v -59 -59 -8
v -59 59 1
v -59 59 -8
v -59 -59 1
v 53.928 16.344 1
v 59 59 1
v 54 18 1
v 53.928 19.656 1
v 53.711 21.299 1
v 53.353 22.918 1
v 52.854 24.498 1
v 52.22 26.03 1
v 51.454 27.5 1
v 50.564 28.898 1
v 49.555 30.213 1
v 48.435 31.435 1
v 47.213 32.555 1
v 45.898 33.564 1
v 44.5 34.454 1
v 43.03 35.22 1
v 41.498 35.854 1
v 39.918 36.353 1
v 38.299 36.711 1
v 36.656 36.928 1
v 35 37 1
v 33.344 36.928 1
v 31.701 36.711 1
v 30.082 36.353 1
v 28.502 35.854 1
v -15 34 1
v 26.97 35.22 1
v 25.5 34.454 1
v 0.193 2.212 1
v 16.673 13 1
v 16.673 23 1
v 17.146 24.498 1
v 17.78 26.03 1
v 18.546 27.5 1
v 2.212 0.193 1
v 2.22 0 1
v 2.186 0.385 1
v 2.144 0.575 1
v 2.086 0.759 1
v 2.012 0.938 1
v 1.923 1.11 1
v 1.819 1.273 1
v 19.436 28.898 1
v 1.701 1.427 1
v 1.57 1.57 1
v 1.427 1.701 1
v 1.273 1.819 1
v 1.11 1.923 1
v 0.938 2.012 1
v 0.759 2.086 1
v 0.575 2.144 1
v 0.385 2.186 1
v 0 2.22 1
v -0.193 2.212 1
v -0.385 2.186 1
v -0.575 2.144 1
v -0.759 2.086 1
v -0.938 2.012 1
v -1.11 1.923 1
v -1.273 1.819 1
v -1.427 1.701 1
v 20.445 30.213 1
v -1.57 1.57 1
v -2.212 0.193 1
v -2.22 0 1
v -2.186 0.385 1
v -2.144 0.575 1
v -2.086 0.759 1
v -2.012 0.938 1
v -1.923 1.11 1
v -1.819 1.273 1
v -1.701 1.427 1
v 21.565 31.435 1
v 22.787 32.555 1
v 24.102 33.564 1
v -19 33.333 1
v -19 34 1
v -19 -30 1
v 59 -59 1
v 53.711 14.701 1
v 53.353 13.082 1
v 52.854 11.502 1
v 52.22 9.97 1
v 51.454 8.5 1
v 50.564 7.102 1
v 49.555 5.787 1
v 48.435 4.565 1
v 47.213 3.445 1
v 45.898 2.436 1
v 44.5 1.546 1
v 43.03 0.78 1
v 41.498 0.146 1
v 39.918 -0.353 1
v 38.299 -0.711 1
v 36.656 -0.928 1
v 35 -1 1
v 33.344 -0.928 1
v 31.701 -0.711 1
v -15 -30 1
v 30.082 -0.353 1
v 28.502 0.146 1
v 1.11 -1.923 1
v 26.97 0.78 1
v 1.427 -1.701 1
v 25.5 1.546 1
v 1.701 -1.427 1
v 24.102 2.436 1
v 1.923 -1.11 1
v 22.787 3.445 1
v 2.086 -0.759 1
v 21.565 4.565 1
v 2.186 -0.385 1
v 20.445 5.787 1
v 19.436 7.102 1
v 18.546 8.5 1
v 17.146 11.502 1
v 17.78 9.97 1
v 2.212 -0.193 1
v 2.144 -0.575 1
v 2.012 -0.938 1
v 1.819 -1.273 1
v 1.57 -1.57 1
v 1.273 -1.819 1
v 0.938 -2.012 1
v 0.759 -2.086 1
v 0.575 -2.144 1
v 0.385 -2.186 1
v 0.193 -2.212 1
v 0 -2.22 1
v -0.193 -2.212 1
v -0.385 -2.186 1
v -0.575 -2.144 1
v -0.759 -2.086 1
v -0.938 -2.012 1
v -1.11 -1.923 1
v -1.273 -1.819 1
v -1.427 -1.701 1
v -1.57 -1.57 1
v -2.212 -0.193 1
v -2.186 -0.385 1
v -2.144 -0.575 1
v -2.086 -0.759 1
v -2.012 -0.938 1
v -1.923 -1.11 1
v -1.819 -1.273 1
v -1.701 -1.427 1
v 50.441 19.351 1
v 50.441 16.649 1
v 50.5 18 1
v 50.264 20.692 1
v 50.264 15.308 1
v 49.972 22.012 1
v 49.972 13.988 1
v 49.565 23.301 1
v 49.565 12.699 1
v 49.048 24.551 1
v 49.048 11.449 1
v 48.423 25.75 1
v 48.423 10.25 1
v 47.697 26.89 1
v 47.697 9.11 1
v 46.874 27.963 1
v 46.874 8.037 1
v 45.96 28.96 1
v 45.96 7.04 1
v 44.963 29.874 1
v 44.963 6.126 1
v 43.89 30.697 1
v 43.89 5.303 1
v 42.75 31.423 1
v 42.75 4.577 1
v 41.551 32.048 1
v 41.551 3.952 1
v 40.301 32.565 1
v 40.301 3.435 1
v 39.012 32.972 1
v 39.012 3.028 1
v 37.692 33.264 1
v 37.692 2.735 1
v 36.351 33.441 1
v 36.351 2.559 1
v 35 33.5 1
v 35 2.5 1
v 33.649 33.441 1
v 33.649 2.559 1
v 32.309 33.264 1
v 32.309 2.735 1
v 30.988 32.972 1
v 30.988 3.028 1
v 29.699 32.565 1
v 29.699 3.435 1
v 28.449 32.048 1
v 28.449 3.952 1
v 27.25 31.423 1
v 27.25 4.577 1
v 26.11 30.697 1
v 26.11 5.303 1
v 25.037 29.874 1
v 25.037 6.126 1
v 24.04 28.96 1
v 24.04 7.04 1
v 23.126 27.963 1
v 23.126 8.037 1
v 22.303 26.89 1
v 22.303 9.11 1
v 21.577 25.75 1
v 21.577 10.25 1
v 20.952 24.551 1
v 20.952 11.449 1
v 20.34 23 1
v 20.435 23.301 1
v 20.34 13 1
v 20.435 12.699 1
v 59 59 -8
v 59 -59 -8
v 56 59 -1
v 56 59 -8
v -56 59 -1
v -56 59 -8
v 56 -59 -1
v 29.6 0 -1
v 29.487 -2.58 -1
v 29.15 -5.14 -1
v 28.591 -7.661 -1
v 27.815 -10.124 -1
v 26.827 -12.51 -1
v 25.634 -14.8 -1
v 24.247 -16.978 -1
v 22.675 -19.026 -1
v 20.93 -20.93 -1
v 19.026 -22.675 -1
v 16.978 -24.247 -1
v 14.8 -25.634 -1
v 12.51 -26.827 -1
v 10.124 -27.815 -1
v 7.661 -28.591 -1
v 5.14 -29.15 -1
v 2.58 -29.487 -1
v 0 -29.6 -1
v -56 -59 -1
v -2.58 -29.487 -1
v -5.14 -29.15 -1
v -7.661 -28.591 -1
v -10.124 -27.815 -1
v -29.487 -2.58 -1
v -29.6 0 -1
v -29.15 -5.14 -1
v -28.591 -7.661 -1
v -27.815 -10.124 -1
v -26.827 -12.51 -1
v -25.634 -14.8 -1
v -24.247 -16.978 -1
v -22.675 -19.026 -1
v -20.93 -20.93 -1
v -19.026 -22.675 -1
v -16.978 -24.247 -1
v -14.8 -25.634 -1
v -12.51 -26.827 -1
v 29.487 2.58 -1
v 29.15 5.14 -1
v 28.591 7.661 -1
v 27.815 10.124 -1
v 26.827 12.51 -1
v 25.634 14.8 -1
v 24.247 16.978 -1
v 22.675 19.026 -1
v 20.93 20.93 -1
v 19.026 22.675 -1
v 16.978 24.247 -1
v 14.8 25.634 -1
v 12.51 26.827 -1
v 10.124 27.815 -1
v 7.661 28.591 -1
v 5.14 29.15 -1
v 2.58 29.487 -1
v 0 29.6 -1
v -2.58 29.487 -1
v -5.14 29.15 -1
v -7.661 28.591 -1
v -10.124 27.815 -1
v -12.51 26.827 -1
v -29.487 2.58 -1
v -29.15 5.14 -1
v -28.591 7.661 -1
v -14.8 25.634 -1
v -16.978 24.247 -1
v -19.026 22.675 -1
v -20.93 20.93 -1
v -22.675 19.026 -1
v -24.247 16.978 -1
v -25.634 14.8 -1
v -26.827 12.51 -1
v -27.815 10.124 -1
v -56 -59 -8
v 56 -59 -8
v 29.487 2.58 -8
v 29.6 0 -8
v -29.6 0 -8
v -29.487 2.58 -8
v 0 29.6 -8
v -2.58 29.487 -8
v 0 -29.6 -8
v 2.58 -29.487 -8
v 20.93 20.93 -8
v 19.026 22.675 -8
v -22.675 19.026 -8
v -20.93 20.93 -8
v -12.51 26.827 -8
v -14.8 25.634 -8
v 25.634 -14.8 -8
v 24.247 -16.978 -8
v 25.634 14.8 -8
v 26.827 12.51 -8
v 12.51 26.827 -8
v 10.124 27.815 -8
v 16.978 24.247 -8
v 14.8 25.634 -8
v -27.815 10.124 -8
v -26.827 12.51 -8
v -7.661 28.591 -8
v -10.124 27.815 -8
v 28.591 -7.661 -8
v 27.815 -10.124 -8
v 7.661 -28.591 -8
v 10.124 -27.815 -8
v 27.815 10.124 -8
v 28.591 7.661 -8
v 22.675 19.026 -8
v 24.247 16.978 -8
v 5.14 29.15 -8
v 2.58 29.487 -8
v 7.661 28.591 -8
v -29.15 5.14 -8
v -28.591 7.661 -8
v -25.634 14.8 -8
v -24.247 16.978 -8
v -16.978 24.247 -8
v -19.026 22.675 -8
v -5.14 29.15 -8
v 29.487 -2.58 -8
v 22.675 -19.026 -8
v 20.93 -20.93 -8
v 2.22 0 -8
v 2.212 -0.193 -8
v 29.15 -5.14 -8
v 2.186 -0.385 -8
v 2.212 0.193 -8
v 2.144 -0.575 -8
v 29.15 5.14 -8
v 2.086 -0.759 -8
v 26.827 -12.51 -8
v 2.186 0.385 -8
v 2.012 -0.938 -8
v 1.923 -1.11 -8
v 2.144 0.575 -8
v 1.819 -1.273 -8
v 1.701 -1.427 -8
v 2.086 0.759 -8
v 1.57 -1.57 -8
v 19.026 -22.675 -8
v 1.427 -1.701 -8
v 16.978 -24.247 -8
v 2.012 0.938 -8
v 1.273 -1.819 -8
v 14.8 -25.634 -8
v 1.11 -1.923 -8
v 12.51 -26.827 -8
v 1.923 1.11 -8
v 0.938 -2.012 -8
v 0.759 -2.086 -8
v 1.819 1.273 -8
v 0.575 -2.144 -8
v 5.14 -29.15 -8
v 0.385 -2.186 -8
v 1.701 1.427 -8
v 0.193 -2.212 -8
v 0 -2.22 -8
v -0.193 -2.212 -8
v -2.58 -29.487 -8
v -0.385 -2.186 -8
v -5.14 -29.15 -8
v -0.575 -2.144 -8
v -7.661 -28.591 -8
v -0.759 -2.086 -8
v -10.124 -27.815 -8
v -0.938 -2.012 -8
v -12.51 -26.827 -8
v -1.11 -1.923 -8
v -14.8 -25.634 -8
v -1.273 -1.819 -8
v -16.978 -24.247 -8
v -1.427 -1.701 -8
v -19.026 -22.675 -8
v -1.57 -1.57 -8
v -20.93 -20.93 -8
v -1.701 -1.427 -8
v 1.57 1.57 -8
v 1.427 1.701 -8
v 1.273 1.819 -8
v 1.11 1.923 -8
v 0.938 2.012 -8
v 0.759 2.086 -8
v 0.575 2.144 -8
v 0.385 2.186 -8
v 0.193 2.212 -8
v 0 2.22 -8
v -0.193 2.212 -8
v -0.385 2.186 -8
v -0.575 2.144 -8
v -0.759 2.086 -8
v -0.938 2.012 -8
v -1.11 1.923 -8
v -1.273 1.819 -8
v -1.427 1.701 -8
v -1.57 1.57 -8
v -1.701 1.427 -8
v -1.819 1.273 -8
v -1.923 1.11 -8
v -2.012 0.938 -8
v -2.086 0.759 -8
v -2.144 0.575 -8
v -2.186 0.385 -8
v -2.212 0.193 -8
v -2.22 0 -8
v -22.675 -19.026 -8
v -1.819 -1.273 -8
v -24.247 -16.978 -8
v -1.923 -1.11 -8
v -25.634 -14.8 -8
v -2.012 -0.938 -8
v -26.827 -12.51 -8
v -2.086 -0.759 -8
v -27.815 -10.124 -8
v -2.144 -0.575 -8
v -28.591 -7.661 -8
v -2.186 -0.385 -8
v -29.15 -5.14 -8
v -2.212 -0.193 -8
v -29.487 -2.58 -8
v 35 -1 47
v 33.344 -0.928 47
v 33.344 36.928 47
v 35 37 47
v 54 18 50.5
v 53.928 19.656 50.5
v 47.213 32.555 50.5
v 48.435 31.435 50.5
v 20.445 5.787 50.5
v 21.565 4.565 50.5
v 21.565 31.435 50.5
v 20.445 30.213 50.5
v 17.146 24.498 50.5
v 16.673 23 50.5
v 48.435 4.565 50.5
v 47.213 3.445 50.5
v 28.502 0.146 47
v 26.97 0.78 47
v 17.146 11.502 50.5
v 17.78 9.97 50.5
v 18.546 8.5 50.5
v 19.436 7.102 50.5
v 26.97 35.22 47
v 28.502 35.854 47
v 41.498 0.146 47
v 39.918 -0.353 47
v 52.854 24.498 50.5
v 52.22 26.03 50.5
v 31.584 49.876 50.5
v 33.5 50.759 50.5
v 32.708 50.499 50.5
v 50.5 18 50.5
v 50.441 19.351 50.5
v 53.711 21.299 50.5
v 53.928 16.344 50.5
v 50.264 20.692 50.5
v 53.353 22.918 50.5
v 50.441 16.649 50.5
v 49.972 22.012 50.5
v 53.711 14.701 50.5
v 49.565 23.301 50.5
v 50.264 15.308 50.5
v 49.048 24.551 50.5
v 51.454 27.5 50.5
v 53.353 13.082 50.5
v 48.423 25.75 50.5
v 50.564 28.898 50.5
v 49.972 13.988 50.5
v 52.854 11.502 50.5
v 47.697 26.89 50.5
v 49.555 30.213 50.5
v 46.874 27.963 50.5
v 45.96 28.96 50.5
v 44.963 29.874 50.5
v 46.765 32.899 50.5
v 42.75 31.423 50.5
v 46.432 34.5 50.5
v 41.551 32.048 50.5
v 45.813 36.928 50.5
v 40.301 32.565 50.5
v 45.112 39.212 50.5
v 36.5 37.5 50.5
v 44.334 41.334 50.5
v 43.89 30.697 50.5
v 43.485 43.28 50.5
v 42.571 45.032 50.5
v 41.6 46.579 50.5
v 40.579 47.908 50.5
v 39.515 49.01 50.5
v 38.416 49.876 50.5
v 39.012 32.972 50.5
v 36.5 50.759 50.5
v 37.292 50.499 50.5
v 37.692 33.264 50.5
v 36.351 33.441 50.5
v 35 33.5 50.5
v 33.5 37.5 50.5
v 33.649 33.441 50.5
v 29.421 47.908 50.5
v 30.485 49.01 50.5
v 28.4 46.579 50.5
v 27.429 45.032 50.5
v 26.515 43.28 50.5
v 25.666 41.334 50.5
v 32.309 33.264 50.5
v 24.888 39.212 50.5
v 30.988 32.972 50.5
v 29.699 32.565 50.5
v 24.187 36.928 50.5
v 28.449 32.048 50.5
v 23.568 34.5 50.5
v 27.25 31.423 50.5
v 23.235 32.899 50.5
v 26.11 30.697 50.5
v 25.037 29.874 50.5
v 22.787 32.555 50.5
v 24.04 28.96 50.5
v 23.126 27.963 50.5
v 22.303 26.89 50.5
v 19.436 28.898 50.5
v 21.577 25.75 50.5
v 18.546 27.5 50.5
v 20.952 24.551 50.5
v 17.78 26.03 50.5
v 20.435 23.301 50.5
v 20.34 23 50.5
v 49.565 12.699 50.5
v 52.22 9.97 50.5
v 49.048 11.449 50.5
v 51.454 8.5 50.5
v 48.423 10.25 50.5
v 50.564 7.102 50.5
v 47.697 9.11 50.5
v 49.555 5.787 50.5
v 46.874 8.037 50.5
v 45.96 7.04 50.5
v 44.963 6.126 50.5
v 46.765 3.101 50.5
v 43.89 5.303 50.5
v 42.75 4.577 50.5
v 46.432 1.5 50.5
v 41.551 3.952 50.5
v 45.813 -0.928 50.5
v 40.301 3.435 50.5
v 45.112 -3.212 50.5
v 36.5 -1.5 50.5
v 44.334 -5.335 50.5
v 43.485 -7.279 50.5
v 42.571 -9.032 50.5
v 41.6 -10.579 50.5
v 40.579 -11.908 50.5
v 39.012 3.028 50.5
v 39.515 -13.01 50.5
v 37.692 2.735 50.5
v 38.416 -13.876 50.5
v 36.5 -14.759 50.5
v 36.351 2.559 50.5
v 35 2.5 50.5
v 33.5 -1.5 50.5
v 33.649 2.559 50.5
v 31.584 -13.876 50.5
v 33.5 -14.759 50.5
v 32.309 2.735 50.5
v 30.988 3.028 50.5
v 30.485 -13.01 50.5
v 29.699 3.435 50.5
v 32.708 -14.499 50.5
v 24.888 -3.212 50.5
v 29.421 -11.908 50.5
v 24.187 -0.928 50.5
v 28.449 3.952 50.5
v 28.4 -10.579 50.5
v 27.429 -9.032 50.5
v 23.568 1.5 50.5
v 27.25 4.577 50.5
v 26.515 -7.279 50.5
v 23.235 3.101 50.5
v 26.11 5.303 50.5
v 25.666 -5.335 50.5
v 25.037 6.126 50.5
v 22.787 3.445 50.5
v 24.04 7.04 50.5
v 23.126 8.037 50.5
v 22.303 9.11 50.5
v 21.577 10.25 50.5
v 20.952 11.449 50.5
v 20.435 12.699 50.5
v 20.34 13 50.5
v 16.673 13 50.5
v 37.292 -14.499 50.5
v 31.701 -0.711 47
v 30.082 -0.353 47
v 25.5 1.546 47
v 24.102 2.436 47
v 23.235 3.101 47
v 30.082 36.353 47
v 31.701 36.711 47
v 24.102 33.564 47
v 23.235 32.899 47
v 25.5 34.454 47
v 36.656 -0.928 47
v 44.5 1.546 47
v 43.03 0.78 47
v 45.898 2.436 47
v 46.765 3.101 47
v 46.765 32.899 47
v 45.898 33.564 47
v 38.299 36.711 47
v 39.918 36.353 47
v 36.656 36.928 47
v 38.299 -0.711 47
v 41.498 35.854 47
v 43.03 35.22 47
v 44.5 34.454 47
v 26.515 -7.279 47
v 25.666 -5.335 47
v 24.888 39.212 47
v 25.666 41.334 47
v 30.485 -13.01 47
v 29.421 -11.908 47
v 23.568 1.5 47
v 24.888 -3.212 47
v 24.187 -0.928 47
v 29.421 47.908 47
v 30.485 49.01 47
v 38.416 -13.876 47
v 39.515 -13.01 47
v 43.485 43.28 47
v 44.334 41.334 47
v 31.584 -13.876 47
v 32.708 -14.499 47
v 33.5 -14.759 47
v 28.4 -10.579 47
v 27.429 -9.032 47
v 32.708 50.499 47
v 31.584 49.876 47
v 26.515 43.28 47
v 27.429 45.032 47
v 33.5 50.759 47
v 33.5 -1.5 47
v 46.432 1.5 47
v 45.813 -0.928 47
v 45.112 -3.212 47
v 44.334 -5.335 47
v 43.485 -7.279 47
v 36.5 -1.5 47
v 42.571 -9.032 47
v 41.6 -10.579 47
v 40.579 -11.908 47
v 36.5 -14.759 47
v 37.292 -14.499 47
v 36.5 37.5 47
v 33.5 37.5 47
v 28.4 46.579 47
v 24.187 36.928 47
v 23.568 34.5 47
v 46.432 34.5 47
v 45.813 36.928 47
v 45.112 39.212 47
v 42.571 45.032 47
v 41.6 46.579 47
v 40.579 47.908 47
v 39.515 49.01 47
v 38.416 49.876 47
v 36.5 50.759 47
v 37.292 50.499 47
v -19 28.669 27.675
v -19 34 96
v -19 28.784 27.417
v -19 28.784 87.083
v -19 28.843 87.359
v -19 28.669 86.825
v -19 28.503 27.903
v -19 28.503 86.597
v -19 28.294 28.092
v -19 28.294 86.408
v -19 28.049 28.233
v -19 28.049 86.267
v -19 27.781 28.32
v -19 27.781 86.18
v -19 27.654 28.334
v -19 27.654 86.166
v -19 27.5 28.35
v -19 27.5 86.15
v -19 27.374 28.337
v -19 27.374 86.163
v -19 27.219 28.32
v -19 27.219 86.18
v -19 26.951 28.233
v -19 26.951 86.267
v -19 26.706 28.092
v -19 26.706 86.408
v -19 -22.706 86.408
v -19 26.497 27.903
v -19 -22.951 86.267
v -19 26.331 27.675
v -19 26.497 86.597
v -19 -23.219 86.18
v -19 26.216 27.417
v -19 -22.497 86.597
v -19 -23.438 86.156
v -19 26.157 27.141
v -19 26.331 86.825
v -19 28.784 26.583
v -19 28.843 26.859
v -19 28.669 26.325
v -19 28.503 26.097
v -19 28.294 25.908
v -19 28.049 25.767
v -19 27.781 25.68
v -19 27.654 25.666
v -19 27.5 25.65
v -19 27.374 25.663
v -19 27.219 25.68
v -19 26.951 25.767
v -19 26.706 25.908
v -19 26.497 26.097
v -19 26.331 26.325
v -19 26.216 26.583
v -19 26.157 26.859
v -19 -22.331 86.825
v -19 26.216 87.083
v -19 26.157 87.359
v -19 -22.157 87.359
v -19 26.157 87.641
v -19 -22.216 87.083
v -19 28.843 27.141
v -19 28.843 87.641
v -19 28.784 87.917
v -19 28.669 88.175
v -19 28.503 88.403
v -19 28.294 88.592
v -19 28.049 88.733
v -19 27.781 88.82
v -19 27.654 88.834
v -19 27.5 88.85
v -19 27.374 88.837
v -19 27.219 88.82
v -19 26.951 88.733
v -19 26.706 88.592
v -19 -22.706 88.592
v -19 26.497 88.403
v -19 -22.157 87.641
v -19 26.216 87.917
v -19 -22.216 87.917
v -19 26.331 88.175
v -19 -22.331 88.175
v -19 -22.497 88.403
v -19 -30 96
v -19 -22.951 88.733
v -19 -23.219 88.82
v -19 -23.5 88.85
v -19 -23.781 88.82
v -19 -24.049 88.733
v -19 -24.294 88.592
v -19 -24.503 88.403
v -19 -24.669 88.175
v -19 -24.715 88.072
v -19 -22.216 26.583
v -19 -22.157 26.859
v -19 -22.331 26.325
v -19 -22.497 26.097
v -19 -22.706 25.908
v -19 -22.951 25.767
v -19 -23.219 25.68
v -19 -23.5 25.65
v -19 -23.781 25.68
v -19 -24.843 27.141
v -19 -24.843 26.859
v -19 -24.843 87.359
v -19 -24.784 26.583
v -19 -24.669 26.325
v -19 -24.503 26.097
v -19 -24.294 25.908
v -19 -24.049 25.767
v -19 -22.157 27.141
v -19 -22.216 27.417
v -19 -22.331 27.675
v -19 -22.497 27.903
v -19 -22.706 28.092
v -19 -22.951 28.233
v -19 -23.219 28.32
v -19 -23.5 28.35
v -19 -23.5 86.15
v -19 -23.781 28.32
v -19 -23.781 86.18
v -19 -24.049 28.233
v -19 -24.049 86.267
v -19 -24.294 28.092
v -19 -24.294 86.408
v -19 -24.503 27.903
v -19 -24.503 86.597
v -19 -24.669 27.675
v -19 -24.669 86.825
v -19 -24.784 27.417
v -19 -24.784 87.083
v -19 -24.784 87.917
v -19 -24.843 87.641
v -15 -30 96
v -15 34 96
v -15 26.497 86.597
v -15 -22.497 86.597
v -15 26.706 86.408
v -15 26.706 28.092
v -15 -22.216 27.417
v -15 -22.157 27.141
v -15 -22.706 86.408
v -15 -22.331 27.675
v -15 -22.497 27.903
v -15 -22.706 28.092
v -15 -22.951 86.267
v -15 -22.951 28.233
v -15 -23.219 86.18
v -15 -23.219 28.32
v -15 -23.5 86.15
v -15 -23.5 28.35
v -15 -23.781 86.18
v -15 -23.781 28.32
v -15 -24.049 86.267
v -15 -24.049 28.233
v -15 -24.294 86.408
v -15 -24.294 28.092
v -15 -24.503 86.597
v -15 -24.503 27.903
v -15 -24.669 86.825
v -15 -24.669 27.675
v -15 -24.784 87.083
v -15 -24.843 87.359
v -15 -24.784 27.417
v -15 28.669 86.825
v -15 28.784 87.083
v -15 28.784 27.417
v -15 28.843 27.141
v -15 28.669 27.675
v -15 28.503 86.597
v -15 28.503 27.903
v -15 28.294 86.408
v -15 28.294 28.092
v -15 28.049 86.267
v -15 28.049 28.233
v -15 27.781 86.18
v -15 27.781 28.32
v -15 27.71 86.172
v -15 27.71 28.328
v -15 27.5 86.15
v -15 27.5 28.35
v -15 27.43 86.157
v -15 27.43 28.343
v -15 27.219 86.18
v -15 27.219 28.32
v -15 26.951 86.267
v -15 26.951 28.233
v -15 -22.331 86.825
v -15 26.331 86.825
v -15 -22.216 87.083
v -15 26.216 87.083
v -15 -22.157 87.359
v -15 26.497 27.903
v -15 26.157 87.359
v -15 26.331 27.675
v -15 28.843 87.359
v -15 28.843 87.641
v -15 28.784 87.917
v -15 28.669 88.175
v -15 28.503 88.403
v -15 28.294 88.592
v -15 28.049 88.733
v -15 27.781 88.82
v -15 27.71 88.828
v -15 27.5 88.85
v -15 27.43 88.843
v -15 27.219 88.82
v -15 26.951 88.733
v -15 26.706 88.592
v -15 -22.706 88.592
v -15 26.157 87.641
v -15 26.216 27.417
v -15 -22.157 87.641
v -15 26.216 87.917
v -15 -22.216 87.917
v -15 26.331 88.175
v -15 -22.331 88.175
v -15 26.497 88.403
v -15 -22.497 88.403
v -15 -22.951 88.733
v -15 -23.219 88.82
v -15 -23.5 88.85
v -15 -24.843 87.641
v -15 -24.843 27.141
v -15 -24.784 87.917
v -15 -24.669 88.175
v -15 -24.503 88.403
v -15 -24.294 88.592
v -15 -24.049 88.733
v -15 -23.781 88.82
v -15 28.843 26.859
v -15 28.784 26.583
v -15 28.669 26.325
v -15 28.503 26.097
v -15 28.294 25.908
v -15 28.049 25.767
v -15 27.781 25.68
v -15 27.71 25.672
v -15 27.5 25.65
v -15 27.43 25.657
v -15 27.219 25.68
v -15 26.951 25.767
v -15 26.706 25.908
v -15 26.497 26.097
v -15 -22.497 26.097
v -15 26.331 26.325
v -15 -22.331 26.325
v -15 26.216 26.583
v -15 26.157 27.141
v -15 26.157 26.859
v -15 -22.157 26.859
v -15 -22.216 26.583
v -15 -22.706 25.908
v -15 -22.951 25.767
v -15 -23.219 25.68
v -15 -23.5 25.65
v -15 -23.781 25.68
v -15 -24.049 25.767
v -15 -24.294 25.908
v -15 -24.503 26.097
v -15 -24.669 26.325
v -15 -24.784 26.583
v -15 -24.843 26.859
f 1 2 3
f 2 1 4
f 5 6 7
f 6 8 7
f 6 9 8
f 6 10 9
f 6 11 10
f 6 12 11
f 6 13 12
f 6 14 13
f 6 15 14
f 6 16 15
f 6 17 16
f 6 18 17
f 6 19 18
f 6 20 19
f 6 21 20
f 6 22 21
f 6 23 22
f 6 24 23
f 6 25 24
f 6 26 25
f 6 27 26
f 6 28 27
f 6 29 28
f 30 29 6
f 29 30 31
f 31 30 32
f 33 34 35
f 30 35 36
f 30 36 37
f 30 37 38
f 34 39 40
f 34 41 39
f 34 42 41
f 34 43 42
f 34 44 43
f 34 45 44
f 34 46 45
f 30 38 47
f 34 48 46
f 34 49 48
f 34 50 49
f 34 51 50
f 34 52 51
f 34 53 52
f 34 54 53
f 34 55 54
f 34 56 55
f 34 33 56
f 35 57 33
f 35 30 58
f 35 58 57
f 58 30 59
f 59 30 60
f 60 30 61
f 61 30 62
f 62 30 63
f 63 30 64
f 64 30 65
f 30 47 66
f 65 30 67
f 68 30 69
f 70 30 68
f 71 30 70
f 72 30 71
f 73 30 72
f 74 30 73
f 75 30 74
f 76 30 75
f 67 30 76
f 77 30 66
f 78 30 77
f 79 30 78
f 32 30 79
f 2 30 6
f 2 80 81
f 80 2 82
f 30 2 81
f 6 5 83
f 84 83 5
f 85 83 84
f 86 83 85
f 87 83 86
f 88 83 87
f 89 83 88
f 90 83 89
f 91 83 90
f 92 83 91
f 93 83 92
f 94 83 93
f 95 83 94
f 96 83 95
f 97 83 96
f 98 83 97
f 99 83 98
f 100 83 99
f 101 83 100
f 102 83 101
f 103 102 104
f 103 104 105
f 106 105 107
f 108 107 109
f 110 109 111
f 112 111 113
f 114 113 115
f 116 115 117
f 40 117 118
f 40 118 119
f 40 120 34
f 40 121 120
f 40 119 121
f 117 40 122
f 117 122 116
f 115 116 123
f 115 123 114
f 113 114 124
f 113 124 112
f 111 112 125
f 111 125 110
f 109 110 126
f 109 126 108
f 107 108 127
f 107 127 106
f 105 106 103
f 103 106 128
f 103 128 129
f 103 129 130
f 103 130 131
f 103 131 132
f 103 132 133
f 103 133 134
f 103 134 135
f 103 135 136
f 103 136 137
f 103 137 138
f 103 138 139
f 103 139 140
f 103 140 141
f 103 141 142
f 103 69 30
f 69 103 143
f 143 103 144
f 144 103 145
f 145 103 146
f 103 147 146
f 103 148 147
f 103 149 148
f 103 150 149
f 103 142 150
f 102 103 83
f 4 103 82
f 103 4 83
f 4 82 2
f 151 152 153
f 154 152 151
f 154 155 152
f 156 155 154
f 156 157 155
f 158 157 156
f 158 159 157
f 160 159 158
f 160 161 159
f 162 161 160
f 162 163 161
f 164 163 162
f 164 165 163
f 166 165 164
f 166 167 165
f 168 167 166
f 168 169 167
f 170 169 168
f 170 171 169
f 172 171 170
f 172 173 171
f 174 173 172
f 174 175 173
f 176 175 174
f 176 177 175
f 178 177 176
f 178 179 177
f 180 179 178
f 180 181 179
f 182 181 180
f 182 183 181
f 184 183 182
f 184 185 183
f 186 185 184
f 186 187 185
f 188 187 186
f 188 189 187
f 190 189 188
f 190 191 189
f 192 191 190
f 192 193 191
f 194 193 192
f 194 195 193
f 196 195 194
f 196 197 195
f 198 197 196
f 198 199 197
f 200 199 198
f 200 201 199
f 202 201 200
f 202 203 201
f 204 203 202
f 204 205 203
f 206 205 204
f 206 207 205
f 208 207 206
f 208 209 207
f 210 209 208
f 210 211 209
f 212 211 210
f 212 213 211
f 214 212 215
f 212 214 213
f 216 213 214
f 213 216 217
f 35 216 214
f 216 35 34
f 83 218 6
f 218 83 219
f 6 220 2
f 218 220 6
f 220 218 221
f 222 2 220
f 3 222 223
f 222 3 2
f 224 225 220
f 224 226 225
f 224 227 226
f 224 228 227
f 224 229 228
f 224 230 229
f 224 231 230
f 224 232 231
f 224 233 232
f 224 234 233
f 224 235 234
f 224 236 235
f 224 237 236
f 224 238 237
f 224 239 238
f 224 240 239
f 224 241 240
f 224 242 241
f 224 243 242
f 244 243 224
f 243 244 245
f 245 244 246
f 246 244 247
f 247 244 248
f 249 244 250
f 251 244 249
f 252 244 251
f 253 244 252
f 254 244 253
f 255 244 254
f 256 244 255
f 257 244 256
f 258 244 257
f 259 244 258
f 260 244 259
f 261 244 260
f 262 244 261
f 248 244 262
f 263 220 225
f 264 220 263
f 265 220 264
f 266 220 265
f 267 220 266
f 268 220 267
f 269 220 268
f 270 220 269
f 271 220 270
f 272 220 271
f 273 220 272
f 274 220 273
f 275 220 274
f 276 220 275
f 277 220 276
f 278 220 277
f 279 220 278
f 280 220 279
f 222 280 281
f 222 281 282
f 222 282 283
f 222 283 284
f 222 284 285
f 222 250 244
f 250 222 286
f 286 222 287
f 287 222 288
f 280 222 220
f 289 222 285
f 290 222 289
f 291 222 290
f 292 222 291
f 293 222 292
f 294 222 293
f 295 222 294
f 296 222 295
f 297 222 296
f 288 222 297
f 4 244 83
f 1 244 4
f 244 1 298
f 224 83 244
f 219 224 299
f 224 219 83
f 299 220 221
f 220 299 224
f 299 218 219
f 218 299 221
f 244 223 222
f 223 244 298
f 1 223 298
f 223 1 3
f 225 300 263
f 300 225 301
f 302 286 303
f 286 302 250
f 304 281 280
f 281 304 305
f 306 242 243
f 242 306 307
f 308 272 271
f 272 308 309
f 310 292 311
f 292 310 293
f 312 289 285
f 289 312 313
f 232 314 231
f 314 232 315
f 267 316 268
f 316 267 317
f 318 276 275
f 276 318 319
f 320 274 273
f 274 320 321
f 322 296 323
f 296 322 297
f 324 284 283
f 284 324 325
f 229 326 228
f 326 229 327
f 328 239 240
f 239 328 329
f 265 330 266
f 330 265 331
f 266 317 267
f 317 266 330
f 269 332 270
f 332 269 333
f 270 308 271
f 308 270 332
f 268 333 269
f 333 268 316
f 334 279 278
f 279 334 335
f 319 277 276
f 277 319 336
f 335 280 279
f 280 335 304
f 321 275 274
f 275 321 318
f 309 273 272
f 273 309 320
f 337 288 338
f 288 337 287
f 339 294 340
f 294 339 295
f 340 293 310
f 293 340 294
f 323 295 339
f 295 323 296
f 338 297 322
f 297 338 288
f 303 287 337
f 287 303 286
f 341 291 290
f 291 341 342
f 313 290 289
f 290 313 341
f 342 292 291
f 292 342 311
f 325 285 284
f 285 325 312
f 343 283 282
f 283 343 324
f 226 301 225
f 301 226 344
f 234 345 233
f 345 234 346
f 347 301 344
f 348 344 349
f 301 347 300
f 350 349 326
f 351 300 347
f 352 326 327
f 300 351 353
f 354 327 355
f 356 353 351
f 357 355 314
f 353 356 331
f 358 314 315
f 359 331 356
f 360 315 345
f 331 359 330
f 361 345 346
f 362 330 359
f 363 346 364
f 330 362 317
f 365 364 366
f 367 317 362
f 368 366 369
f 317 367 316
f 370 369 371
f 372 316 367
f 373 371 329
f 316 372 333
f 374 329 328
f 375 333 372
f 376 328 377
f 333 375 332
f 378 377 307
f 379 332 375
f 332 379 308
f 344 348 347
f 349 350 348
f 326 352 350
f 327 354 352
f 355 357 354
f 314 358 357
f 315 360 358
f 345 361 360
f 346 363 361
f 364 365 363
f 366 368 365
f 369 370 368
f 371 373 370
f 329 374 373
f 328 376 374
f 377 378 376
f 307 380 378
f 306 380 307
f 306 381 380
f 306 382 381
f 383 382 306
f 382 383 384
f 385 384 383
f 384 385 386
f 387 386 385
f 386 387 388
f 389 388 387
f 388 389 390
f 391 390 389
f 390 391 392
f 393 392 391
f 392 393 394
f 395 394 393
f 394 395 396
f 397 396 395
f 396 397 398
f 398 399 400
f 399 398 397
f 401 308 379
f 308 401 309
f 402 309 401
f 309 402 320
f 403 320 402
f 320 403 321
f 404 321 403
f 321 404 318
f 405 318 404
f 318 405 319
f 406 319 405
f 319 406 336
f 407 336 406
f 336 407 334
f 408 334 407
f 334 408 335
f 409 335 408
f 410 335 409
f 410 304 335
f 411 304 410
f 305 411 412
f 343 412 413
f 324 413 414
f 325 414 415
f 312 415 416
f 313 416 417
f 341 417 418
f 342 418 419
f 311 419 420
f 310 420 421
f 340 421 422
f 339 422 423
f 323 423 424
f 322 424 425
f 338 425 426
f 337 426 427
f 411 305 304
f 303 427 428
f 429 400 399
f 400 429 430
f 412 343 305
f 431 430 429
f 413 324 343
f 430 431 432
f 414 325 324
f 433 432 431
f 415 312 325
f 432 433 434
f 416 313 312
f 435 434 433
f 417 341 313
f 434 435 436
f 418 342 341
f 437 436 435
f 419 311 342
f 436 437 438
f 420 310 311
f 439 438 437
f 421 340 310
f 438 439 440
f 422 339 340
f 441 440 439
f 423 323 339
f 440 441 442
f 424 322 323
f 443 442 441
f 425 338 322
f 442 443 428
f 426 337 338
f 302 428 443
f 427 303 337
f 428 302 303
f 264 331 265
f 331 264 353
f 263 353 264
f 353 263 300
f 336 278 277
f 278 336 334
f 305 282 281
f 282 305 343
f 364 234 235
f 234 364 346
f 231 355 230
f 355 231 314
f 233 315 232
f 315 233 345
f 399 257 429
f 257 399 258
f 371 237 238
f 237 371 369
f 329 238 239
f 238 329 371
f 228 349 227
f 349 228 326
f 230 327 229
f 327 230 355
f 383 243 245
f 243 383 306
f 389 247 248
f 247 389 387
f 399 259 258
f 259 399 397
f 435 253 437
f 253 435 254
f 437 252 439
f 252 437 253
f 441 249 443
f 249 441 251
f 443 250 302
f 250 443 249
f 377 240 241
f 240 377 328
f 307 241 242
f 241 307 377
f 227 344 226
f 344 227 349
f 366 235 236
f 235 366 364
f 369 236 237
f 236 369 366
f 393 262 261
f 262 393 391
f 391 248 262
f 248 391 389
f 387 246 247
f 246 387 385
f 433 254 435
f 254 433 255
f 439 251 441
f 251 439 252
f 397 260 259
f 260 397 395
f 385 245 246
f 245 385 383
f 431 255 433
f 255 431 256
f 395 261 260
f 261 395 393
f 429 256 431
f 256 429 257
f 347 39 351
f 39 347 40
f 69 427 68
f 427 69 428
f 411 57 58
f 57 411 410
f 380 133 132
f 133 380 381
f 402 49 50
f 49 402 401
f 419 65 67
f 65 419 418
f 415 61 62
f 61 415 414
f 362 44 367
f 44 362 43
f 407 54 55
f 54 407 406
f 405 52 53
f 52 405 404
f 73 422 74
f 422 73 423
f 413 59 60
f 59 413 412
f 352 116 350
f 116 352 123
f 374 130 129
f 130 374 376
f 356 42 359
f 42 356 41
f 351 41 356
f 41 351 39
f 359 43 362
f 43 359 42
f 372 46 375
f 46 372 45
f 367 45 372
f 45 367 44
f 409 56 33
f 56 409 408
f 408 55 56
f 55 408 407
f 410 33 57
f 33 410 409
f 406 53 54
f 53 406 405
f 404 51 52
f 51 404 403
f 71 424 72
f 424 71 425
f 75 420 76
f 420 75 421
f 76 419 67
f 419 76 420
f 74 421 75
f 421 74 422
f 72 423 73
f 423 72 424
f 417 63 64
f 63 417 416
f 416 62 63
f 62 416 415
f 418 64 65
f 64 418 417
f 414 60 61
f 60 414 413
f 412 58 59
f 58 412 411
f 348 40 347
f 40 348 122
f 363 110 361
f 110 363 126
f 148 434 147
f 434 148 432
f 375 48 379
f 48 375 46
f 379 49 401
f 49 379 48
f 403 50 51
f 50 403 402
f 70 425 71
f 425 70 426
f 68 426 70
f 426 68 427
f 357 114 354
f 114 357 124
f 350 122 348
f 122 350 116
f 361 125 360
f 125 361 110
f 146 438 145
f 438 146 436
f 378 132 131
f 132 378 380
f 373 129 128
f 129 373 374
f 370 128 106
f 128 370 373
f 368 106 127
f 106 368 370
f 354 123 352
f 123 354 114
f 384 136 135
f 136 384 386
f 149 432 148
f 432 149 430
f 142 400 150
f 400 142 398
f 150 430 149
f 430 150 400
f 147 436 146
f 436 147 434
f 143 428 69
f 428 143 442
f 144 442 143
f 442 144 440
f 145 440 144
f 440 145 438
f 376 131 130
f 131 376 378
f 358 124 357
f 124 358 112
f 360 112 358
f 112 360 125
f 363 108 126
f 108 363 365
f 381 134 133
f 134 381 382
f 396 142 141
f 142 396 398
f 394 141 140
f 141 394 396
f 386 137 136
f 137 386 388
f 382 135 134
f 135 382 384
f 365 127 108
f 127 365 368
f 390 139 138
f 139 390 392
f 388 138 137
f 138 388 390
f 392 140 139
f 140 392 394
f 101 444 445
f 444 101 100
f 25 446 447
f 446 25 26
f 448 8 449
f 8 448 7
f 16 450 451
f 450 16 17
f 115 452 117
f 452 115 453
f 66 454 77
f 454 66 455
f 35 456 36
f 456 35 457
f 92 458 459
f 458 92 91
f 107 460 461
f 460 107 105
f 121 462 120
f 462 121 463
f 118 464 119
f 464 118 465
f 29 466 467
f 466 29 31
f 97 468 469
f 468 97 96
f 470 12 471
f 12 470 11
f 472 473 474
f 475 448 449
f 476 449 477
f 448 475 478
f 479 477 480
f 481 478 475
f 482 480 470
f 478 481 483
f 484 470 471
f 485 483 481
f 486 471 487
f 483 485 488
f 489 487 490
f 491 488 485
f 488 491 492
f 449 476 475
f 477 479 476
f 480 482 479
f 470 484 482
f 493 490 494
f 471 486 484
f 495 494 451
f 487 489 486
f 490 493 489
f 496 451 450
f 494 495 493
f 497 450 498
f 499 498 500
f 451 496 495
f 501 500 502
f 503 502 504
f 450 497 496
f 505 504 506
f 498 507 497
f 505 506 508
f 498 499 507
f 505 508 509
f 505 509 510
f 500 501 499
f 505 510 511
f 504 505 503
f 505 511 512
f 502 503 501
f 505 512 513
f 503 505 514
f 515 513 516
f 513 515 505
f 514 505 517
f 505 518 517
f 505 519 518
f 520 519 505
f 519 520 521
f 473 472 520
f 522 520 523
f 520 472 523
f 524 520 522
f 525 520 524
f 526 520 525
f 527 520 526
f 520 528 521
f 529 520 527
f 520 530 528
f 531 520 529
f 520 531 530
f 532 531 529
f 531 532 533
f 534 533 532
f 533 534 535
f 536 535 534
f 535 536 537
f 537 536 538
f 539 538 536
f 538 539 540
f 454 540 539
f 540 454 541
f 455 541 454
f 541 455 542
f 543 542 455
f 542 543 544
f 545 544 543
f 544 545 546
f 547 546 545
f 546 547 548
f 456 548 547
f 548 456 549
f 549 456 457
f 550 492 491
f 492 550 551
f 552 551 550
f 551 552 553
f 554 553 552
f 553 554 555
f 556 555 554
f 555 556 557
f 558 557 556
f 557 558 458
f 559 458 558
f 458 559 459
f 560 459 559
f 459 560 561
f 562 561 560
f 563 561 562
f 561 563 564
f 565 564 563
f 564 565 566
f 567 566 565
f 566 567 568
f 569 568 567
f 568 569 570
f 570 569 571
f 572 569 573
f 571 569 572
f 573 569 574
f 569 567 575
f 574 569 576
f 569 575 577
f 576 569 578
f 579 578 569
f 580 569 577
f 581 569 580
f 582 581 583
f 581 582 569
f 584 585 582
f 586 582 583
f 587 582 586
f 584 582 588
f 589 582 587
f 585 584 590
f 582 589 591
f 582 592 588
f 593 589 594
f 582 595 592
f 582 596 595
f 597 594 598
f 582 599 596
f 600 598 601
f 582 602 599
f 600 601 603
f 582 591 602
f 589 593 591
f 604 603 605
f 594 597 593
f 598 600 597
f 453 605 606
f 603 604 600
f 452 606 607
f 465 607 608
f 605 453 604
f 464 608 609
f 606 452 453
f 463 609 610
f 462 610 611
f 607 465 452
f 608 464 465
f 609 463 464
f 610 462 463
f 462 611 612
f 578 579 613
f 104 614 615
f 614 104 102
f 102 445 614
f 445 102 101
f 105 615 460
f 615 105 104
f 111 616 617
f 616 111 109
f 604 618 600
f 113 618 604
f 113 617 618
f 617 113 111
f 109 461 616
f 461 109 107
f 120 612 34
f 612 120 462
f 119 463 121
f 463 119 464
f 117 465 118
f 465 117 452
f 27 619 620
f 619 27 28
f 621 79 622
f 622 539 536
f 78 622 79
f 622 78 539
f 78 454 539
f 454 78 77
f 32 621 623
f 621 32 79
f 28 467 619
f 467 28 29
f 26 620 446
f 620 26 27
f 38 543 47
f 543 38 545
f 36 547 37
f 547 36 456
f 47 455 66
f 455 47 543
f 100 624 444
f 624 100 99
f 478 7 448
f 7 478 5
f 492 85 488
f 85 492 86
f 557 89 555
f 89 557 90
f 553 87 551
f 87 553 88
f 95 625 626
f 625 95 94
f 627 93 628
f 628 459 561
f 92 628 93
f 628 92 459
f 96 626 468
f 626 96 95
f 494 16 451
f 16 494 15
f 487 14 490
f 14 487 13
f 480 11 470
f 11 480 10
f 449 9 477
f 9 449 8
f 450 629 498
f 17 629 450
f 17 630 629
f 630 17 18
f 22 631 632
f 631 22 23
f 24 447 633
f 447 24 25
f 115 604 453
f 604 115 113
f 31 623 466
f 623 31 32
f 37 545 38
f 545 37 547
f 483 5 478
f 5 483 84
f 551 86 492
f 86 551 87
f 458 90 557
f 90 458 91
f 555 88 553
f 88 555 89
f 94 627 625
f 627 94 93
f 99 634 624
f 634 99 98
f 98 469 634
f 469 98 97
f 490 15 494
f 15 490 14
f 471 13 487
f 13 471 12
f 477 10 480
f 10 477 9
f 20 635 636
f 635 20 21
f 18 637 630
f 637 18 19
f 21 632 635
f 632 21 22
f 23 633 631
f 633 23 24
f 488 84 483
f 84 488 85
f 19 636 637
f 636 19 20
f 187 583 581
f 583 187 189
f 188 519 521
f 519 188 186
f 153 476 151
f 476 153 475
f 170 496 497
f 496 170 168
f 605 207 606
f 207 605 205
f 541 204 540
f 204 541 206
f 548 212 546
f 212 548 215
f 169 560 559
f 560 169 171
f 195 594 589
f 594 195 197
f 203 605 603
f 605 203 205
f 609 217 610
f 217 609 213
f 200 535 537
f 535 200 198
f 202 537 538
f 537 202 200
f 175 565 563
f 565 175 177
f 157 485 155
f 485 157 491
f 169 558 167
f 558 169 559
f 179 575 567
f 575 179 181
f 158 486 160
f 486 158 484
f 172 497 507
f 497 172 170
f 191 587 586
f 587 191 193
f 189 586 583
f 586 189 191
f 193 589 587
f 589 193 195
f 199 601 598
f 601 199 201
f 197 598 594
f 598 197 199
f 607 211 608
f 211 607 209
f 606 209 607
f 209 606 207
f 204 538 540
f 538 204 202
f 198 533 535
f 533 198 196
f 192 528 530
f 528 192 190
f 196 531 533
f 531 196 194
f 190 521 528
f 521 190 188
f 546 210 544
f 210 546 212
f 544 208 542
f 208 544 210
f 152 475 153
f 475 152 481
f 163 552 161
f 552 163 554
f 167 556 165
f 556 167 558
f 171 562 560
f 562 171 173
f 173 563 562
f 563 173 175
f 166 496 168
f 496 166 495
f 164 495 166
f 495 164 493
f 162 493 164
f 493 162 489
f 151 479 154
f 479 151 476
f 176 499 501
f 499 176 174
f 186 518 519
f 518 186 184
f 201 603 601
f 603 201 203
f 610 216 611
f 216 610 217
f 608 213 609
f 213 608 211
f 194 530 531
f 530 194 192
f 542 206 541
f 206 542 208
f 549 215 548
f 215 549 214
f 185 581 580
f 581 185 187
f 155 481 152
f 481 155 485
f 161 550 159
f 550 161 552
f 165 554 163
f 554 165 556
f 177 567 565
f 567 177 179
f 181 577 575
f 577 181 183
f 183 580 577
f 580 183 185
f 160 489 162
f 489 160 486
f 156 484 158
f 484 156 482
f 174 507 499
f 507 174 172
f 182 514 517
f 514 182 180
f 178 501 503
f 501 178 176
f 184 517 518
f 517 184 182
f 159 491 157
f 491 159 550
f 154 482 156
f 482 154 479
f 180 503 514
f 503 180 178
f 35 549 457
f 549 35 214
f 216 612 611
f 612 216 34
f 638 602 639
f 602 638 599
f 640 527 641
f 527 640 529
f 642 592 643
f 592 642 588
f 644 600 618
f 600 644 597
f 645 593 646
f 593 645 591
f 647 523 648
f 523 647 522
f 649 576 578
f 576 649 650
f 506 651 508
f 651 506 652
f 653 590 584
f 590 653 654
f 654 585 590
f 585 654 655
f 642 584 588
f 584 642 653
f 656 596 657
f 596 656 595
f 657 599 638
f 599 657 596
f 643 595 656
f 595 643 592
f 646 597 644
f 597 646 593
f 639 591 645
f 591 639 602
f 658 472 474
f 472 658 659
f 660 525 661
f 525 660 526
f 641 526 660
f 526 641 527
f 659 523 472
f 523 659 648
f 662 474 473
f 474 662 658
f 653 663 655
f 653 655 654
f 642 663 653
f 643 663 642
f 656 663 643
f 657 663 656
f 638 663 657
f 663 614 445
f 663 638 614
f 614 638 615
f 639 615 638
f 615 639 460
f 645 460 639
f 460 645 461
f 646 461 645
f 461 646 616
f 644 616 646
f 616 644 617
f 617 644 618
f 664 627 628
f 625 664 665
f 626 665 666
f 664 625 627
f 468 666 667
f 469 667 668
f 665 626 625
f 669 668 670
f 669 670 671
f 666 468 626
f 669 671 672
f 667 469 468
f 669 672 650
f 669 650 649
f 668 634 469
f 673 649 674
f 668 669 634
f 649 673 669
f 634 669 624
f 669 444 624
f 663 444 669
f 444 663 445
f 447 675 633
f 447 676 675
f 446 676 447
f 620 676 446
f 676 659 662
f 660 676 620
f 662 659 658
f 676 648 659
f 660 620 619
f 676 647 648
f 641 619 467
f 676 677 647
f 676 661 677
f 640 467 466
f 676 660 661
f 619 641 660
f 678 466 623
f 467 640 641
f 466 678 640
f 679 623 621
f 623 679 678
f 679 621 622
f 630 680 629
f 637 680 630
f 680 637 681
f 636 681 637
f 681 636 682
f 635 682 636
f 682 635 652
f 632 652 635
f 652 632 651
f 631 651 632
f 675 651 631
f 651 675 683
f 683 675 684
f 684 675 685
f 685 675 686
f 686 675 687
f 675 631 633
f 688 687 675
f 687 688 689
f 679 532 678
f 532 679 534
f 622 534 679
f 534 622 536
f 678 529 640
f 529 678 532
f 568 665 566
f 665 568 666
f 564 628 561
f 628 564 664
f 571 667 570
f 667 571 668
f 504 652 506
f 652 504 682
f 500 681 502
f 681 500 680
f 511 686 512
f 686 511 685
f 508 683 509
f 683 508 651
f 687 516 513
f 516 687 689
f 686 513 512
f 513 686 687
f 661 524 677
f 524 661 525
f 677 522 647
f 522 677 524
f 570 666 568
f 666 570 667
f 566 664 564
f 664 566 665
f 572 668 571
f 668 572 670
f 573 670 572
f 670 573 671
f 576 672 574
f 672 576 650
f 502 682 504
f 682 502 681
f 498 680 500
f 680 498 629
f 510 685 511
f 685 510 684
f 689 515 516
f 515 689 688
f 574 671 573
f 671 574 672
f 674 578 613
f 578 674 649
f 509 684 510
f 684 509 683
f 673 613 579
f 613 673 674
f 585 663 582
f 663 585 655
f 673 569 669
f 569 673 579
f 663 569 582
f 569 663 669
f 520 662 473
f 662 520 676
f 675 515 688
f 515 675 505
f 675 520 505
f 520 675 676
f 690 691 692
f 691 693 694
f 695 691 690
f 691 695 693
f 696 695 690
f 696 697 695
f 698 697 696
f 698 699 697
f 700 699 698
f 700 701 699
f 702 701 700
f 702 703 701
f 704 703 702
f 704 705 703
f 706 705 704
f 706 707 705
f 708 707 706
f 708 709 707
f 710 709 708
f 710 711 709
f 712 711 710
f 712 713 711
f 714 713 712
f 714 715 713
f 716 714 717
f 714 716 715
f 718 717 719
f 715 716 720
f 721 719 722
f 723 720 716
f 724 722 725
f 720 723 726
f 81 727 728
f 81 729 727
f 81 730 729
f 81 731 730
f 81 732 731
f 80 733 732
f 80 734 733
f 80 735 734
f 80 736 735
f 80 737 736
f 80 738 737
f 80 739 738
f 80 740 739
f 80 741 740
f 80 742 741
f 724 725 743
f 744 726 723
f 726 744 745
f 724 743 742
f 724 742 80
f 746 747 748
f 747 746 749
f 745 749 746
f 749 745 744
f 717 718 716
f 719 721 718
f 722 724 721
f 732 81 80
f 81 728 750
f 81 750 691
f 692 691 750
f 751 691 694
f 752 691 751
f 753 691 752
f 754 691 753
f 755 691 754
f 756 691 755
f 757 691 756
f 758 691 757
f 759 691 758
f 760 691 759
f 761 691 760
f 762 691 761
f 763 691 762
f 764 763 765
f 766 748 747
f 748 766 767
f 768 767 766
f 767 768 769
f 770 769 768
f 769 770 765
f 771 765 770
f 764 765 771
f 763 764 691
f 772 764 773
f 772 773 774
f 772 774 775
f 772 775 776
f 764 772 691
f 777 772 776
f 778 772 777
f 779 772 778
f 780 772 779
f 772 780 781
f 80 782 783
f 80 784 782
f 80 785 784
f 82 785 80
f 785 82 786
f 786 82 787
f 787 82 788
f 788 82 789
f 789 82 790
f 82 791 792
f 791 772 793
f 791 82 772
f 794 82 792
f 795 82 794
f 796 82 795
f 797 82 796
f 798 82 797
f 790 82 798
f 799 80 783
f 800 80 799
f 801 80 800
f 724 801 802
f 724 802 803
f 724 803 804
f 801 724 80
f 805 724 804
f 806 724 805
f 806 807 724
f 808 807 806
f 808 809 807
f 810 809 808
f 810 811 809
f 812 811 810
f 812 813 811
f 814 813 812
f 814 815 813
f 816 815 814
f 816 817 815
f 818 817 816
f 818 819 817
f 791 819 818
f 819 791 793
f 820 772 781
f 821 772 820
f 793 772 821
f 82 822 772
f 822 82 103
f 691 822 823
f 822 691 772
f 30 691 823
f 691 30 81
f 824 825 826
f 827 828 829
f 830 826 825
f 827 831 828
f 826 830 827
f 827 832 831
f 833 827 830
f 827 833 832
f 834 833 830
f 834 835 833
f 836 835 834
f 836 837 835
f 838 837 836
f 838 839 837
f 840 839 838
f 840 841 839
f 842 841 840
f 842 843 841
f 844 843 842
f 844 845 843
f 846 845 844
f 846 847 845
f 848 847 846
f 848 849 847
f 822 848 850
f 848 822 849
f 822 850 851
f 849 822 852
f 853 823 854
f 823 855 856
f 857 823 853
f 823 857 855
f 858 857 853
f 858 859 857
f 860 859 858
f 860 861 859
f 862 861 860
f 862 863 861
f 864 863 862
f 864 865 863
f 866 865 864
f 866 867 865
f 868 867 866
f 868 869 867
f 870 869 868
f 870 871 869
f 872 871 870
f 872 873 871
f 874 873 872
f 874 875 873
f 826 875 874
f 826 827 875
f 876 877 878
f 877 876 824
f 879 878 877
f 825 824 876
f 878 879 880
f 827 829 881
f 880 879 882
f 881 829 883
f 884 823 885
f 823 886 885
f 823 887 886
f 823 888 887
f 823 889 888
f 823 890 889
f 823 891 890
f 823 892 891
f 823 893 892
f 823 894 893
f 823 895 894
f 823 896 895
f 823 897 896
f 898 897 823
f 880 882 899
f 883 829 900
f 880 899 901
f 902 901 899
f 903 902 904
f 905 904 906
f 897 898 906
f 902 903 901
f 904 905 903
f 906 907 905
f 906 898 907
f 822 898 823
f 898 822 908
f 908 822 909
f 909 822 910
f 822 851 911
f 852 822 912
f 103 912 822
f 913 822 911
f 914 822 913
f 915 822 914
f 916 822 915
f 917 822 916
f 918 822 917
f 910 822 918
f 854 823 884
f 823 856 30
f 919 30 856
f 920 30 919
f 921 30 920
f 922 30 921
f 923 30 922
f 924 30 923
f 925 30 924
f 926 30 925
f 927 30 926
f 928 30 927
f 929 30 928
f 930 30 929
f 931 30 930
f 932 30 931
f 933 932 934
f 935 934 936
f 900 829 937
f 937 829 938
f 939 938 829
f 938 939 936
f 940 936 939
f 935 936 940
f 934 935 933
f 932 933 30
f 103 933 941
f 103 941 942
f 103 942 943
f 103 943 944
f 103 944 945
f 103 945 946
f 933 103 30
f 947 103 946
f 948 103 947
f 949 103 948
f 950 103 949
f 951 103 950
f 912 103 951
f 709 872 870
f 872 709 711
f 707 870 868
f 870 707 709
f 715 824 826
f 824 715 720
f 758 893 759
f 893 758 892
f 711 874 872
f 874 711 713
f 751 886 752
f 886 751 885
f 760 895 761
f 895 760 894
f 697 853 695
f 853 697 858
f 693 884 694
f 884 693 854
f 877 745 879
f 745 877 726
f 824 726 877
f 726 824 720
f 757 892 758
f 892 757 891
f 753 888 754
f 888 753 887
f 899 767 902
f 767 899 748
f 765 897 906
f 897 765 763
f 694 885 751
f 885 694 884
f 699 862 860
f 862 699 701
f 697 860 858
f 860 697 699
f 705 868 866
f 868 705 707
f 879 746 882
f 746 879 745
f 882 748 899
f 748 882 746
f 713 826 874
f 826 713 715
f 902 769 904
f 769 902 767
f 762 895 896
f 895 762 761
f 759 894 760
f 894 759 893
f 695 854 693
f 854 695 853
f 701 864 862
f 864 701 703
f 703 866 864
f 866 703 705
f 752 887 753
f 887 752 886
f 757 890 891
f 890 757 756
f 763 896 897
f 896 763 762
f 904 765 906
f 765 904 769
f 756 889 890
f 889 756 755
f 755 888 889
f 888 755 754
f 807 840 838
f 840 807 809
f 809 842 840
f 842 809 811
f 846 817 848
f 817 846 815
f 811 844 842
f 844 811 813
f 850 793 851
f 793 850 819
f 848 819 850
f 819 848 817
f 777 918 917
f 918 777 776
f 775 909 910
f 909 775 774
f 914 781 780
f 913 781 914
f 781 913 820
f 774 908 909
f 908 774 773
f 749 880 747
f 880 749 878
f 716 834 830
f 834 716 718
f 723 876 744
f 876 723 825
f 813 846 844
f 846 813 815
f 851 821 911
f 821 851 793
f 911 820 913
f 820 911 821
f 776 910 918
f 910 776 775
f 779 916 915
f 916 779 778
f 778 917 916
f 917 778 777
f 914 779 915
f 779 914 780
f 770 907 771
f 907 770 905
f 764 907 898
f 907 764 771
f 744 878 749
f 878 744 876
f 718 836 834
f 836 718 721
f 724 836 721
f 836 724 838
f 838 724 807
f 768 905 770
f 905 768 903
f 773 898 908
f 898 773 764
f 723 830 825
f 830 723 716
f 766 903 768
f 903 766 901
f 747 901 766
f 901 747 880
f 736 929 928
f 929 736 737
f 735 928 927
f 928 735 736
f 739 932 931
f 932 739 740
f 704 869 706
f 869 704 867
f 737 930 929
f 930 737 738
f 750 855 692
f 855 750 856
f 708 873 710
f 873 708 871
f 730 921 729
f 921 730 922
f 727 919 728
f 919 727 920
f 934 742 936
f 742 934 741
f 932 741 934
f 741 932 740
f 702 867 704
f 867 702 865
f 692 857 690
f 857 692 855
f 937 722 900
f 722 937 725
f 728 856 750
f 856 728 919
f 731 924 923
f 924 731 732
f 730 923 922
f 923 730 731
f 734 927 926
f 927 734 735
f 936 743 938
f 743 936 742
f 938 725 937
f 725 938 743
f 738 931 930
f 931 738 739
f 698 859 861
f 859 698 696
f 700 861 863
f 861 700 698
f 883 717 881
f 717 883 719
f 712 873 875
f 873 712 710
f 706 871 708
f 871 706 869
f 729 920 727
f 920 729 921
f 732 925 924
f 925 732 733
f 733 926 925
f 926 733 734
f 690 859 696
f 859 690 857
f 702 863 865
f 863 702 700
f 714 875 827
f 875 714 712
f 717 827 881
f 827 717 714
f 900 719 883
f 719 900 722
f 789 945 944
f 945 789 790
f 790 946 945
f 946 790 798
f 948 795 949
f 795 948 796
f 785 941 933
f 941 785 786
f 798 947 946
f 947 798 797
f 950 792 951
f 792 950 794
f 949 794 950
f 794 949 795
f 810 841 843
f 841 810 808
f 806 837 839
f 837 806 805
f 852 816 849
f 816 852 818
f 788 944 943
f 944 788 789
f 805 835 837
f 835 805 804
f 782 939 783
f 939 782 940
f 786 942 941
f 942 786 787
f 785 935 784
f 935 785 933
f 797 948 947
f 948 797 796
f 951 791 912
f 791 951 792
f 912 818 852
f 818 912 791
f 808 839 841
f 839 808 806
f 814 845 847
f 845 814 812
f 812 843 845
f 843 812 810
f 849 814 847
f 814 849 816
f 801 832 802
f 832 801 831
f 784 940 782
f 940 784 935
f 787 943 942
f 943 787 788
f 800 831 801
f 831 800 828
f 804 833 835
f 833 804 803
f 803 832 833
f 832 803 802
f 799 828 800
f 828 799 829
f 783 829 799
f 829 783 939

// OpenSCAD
$fs = 0.1;  // Don't generate smaller facets than 0.1 mm
$fa = 5;    // Don't generate larger angles than 5 degrees

union() {
base();
pumpMount();
translate([-15,30,96])piMount();
}
module base (){
    
    difference() {
        union () { 
            bottom();
            sideMount(57.5, 8);
            sideMount(-57.5, 8);
            circularMount(29.6, 8);
            }
        tubeHole(2.22);
        }

        
        module bottom () {
            color("Yellow") cube ([118, 118, 2], center=true);
            }

        module sideMount(x,y) {
            color("Orange") translate([x, 0, -y/2]) cube([3, 118, y], center=true);
            }    

        module circularMount(r,h) {
            color("Orange") translate([0,0,-h/2]) cylinder(h=h, r=r, center=true);
            }
            
        module tubeHole(r) {
            color("Purple") cylinder(h=20, r=r, center=true);
            }
}

module pumpMount() {    
    
translate ([35, 18, 50.5]) rotate([180,0,270]) 
    union() {
    difference() {
    outerHousing();
    innerHousing();
    sideSlot();       
        }
        mountingBracket();
    }
    module outerHousing() {color("Green") cylinder(h=50, r=19); }
    module innerHousing() {color("Purple") translate([0,0,-2]) cylinder(h=55, r=15.5); }
    module sideSlot() {color("Red") rotate([0,0,90]) translate([16,0,0])cube([10,10,240], center=true);}
    
    module mountingBracket() {  
        module bracket() {color("Green") scale([1, .4, 1]) cylinder(h=3.5, r=33);}   
        module screwSlots() {}
        difference() {
        bracket();
        innerHousing();    
        scale ([3, .3, 1]) translate ([11.5, -16, 0])sideSlot();
        scale ([3, .3, 1]) translate ([-11.5, -16, 0])sideSlot();
        }
        }
    }
    
module piMount() {
    $fn=30;
difference() {
    rotate([0,90,180]) translate([0,-4,0]) cube ([90 + 6,64,4]);

    rotate([0,90,180])translate([8.5,2.5,-5])cylinder(d=2.7,h=20);
       
    rotate([0,90,180])translate([8.5,53.5,-5])cylinder(d=2.7,h=20);
    
    rotate([0,90,180])translate([69,2.5,-5])cylinder(d=2.7,h=20);
     
    rotate([0,90,180])translate([69,53.5,-5])cylinder(d=2.7,h=20);
    }
}
